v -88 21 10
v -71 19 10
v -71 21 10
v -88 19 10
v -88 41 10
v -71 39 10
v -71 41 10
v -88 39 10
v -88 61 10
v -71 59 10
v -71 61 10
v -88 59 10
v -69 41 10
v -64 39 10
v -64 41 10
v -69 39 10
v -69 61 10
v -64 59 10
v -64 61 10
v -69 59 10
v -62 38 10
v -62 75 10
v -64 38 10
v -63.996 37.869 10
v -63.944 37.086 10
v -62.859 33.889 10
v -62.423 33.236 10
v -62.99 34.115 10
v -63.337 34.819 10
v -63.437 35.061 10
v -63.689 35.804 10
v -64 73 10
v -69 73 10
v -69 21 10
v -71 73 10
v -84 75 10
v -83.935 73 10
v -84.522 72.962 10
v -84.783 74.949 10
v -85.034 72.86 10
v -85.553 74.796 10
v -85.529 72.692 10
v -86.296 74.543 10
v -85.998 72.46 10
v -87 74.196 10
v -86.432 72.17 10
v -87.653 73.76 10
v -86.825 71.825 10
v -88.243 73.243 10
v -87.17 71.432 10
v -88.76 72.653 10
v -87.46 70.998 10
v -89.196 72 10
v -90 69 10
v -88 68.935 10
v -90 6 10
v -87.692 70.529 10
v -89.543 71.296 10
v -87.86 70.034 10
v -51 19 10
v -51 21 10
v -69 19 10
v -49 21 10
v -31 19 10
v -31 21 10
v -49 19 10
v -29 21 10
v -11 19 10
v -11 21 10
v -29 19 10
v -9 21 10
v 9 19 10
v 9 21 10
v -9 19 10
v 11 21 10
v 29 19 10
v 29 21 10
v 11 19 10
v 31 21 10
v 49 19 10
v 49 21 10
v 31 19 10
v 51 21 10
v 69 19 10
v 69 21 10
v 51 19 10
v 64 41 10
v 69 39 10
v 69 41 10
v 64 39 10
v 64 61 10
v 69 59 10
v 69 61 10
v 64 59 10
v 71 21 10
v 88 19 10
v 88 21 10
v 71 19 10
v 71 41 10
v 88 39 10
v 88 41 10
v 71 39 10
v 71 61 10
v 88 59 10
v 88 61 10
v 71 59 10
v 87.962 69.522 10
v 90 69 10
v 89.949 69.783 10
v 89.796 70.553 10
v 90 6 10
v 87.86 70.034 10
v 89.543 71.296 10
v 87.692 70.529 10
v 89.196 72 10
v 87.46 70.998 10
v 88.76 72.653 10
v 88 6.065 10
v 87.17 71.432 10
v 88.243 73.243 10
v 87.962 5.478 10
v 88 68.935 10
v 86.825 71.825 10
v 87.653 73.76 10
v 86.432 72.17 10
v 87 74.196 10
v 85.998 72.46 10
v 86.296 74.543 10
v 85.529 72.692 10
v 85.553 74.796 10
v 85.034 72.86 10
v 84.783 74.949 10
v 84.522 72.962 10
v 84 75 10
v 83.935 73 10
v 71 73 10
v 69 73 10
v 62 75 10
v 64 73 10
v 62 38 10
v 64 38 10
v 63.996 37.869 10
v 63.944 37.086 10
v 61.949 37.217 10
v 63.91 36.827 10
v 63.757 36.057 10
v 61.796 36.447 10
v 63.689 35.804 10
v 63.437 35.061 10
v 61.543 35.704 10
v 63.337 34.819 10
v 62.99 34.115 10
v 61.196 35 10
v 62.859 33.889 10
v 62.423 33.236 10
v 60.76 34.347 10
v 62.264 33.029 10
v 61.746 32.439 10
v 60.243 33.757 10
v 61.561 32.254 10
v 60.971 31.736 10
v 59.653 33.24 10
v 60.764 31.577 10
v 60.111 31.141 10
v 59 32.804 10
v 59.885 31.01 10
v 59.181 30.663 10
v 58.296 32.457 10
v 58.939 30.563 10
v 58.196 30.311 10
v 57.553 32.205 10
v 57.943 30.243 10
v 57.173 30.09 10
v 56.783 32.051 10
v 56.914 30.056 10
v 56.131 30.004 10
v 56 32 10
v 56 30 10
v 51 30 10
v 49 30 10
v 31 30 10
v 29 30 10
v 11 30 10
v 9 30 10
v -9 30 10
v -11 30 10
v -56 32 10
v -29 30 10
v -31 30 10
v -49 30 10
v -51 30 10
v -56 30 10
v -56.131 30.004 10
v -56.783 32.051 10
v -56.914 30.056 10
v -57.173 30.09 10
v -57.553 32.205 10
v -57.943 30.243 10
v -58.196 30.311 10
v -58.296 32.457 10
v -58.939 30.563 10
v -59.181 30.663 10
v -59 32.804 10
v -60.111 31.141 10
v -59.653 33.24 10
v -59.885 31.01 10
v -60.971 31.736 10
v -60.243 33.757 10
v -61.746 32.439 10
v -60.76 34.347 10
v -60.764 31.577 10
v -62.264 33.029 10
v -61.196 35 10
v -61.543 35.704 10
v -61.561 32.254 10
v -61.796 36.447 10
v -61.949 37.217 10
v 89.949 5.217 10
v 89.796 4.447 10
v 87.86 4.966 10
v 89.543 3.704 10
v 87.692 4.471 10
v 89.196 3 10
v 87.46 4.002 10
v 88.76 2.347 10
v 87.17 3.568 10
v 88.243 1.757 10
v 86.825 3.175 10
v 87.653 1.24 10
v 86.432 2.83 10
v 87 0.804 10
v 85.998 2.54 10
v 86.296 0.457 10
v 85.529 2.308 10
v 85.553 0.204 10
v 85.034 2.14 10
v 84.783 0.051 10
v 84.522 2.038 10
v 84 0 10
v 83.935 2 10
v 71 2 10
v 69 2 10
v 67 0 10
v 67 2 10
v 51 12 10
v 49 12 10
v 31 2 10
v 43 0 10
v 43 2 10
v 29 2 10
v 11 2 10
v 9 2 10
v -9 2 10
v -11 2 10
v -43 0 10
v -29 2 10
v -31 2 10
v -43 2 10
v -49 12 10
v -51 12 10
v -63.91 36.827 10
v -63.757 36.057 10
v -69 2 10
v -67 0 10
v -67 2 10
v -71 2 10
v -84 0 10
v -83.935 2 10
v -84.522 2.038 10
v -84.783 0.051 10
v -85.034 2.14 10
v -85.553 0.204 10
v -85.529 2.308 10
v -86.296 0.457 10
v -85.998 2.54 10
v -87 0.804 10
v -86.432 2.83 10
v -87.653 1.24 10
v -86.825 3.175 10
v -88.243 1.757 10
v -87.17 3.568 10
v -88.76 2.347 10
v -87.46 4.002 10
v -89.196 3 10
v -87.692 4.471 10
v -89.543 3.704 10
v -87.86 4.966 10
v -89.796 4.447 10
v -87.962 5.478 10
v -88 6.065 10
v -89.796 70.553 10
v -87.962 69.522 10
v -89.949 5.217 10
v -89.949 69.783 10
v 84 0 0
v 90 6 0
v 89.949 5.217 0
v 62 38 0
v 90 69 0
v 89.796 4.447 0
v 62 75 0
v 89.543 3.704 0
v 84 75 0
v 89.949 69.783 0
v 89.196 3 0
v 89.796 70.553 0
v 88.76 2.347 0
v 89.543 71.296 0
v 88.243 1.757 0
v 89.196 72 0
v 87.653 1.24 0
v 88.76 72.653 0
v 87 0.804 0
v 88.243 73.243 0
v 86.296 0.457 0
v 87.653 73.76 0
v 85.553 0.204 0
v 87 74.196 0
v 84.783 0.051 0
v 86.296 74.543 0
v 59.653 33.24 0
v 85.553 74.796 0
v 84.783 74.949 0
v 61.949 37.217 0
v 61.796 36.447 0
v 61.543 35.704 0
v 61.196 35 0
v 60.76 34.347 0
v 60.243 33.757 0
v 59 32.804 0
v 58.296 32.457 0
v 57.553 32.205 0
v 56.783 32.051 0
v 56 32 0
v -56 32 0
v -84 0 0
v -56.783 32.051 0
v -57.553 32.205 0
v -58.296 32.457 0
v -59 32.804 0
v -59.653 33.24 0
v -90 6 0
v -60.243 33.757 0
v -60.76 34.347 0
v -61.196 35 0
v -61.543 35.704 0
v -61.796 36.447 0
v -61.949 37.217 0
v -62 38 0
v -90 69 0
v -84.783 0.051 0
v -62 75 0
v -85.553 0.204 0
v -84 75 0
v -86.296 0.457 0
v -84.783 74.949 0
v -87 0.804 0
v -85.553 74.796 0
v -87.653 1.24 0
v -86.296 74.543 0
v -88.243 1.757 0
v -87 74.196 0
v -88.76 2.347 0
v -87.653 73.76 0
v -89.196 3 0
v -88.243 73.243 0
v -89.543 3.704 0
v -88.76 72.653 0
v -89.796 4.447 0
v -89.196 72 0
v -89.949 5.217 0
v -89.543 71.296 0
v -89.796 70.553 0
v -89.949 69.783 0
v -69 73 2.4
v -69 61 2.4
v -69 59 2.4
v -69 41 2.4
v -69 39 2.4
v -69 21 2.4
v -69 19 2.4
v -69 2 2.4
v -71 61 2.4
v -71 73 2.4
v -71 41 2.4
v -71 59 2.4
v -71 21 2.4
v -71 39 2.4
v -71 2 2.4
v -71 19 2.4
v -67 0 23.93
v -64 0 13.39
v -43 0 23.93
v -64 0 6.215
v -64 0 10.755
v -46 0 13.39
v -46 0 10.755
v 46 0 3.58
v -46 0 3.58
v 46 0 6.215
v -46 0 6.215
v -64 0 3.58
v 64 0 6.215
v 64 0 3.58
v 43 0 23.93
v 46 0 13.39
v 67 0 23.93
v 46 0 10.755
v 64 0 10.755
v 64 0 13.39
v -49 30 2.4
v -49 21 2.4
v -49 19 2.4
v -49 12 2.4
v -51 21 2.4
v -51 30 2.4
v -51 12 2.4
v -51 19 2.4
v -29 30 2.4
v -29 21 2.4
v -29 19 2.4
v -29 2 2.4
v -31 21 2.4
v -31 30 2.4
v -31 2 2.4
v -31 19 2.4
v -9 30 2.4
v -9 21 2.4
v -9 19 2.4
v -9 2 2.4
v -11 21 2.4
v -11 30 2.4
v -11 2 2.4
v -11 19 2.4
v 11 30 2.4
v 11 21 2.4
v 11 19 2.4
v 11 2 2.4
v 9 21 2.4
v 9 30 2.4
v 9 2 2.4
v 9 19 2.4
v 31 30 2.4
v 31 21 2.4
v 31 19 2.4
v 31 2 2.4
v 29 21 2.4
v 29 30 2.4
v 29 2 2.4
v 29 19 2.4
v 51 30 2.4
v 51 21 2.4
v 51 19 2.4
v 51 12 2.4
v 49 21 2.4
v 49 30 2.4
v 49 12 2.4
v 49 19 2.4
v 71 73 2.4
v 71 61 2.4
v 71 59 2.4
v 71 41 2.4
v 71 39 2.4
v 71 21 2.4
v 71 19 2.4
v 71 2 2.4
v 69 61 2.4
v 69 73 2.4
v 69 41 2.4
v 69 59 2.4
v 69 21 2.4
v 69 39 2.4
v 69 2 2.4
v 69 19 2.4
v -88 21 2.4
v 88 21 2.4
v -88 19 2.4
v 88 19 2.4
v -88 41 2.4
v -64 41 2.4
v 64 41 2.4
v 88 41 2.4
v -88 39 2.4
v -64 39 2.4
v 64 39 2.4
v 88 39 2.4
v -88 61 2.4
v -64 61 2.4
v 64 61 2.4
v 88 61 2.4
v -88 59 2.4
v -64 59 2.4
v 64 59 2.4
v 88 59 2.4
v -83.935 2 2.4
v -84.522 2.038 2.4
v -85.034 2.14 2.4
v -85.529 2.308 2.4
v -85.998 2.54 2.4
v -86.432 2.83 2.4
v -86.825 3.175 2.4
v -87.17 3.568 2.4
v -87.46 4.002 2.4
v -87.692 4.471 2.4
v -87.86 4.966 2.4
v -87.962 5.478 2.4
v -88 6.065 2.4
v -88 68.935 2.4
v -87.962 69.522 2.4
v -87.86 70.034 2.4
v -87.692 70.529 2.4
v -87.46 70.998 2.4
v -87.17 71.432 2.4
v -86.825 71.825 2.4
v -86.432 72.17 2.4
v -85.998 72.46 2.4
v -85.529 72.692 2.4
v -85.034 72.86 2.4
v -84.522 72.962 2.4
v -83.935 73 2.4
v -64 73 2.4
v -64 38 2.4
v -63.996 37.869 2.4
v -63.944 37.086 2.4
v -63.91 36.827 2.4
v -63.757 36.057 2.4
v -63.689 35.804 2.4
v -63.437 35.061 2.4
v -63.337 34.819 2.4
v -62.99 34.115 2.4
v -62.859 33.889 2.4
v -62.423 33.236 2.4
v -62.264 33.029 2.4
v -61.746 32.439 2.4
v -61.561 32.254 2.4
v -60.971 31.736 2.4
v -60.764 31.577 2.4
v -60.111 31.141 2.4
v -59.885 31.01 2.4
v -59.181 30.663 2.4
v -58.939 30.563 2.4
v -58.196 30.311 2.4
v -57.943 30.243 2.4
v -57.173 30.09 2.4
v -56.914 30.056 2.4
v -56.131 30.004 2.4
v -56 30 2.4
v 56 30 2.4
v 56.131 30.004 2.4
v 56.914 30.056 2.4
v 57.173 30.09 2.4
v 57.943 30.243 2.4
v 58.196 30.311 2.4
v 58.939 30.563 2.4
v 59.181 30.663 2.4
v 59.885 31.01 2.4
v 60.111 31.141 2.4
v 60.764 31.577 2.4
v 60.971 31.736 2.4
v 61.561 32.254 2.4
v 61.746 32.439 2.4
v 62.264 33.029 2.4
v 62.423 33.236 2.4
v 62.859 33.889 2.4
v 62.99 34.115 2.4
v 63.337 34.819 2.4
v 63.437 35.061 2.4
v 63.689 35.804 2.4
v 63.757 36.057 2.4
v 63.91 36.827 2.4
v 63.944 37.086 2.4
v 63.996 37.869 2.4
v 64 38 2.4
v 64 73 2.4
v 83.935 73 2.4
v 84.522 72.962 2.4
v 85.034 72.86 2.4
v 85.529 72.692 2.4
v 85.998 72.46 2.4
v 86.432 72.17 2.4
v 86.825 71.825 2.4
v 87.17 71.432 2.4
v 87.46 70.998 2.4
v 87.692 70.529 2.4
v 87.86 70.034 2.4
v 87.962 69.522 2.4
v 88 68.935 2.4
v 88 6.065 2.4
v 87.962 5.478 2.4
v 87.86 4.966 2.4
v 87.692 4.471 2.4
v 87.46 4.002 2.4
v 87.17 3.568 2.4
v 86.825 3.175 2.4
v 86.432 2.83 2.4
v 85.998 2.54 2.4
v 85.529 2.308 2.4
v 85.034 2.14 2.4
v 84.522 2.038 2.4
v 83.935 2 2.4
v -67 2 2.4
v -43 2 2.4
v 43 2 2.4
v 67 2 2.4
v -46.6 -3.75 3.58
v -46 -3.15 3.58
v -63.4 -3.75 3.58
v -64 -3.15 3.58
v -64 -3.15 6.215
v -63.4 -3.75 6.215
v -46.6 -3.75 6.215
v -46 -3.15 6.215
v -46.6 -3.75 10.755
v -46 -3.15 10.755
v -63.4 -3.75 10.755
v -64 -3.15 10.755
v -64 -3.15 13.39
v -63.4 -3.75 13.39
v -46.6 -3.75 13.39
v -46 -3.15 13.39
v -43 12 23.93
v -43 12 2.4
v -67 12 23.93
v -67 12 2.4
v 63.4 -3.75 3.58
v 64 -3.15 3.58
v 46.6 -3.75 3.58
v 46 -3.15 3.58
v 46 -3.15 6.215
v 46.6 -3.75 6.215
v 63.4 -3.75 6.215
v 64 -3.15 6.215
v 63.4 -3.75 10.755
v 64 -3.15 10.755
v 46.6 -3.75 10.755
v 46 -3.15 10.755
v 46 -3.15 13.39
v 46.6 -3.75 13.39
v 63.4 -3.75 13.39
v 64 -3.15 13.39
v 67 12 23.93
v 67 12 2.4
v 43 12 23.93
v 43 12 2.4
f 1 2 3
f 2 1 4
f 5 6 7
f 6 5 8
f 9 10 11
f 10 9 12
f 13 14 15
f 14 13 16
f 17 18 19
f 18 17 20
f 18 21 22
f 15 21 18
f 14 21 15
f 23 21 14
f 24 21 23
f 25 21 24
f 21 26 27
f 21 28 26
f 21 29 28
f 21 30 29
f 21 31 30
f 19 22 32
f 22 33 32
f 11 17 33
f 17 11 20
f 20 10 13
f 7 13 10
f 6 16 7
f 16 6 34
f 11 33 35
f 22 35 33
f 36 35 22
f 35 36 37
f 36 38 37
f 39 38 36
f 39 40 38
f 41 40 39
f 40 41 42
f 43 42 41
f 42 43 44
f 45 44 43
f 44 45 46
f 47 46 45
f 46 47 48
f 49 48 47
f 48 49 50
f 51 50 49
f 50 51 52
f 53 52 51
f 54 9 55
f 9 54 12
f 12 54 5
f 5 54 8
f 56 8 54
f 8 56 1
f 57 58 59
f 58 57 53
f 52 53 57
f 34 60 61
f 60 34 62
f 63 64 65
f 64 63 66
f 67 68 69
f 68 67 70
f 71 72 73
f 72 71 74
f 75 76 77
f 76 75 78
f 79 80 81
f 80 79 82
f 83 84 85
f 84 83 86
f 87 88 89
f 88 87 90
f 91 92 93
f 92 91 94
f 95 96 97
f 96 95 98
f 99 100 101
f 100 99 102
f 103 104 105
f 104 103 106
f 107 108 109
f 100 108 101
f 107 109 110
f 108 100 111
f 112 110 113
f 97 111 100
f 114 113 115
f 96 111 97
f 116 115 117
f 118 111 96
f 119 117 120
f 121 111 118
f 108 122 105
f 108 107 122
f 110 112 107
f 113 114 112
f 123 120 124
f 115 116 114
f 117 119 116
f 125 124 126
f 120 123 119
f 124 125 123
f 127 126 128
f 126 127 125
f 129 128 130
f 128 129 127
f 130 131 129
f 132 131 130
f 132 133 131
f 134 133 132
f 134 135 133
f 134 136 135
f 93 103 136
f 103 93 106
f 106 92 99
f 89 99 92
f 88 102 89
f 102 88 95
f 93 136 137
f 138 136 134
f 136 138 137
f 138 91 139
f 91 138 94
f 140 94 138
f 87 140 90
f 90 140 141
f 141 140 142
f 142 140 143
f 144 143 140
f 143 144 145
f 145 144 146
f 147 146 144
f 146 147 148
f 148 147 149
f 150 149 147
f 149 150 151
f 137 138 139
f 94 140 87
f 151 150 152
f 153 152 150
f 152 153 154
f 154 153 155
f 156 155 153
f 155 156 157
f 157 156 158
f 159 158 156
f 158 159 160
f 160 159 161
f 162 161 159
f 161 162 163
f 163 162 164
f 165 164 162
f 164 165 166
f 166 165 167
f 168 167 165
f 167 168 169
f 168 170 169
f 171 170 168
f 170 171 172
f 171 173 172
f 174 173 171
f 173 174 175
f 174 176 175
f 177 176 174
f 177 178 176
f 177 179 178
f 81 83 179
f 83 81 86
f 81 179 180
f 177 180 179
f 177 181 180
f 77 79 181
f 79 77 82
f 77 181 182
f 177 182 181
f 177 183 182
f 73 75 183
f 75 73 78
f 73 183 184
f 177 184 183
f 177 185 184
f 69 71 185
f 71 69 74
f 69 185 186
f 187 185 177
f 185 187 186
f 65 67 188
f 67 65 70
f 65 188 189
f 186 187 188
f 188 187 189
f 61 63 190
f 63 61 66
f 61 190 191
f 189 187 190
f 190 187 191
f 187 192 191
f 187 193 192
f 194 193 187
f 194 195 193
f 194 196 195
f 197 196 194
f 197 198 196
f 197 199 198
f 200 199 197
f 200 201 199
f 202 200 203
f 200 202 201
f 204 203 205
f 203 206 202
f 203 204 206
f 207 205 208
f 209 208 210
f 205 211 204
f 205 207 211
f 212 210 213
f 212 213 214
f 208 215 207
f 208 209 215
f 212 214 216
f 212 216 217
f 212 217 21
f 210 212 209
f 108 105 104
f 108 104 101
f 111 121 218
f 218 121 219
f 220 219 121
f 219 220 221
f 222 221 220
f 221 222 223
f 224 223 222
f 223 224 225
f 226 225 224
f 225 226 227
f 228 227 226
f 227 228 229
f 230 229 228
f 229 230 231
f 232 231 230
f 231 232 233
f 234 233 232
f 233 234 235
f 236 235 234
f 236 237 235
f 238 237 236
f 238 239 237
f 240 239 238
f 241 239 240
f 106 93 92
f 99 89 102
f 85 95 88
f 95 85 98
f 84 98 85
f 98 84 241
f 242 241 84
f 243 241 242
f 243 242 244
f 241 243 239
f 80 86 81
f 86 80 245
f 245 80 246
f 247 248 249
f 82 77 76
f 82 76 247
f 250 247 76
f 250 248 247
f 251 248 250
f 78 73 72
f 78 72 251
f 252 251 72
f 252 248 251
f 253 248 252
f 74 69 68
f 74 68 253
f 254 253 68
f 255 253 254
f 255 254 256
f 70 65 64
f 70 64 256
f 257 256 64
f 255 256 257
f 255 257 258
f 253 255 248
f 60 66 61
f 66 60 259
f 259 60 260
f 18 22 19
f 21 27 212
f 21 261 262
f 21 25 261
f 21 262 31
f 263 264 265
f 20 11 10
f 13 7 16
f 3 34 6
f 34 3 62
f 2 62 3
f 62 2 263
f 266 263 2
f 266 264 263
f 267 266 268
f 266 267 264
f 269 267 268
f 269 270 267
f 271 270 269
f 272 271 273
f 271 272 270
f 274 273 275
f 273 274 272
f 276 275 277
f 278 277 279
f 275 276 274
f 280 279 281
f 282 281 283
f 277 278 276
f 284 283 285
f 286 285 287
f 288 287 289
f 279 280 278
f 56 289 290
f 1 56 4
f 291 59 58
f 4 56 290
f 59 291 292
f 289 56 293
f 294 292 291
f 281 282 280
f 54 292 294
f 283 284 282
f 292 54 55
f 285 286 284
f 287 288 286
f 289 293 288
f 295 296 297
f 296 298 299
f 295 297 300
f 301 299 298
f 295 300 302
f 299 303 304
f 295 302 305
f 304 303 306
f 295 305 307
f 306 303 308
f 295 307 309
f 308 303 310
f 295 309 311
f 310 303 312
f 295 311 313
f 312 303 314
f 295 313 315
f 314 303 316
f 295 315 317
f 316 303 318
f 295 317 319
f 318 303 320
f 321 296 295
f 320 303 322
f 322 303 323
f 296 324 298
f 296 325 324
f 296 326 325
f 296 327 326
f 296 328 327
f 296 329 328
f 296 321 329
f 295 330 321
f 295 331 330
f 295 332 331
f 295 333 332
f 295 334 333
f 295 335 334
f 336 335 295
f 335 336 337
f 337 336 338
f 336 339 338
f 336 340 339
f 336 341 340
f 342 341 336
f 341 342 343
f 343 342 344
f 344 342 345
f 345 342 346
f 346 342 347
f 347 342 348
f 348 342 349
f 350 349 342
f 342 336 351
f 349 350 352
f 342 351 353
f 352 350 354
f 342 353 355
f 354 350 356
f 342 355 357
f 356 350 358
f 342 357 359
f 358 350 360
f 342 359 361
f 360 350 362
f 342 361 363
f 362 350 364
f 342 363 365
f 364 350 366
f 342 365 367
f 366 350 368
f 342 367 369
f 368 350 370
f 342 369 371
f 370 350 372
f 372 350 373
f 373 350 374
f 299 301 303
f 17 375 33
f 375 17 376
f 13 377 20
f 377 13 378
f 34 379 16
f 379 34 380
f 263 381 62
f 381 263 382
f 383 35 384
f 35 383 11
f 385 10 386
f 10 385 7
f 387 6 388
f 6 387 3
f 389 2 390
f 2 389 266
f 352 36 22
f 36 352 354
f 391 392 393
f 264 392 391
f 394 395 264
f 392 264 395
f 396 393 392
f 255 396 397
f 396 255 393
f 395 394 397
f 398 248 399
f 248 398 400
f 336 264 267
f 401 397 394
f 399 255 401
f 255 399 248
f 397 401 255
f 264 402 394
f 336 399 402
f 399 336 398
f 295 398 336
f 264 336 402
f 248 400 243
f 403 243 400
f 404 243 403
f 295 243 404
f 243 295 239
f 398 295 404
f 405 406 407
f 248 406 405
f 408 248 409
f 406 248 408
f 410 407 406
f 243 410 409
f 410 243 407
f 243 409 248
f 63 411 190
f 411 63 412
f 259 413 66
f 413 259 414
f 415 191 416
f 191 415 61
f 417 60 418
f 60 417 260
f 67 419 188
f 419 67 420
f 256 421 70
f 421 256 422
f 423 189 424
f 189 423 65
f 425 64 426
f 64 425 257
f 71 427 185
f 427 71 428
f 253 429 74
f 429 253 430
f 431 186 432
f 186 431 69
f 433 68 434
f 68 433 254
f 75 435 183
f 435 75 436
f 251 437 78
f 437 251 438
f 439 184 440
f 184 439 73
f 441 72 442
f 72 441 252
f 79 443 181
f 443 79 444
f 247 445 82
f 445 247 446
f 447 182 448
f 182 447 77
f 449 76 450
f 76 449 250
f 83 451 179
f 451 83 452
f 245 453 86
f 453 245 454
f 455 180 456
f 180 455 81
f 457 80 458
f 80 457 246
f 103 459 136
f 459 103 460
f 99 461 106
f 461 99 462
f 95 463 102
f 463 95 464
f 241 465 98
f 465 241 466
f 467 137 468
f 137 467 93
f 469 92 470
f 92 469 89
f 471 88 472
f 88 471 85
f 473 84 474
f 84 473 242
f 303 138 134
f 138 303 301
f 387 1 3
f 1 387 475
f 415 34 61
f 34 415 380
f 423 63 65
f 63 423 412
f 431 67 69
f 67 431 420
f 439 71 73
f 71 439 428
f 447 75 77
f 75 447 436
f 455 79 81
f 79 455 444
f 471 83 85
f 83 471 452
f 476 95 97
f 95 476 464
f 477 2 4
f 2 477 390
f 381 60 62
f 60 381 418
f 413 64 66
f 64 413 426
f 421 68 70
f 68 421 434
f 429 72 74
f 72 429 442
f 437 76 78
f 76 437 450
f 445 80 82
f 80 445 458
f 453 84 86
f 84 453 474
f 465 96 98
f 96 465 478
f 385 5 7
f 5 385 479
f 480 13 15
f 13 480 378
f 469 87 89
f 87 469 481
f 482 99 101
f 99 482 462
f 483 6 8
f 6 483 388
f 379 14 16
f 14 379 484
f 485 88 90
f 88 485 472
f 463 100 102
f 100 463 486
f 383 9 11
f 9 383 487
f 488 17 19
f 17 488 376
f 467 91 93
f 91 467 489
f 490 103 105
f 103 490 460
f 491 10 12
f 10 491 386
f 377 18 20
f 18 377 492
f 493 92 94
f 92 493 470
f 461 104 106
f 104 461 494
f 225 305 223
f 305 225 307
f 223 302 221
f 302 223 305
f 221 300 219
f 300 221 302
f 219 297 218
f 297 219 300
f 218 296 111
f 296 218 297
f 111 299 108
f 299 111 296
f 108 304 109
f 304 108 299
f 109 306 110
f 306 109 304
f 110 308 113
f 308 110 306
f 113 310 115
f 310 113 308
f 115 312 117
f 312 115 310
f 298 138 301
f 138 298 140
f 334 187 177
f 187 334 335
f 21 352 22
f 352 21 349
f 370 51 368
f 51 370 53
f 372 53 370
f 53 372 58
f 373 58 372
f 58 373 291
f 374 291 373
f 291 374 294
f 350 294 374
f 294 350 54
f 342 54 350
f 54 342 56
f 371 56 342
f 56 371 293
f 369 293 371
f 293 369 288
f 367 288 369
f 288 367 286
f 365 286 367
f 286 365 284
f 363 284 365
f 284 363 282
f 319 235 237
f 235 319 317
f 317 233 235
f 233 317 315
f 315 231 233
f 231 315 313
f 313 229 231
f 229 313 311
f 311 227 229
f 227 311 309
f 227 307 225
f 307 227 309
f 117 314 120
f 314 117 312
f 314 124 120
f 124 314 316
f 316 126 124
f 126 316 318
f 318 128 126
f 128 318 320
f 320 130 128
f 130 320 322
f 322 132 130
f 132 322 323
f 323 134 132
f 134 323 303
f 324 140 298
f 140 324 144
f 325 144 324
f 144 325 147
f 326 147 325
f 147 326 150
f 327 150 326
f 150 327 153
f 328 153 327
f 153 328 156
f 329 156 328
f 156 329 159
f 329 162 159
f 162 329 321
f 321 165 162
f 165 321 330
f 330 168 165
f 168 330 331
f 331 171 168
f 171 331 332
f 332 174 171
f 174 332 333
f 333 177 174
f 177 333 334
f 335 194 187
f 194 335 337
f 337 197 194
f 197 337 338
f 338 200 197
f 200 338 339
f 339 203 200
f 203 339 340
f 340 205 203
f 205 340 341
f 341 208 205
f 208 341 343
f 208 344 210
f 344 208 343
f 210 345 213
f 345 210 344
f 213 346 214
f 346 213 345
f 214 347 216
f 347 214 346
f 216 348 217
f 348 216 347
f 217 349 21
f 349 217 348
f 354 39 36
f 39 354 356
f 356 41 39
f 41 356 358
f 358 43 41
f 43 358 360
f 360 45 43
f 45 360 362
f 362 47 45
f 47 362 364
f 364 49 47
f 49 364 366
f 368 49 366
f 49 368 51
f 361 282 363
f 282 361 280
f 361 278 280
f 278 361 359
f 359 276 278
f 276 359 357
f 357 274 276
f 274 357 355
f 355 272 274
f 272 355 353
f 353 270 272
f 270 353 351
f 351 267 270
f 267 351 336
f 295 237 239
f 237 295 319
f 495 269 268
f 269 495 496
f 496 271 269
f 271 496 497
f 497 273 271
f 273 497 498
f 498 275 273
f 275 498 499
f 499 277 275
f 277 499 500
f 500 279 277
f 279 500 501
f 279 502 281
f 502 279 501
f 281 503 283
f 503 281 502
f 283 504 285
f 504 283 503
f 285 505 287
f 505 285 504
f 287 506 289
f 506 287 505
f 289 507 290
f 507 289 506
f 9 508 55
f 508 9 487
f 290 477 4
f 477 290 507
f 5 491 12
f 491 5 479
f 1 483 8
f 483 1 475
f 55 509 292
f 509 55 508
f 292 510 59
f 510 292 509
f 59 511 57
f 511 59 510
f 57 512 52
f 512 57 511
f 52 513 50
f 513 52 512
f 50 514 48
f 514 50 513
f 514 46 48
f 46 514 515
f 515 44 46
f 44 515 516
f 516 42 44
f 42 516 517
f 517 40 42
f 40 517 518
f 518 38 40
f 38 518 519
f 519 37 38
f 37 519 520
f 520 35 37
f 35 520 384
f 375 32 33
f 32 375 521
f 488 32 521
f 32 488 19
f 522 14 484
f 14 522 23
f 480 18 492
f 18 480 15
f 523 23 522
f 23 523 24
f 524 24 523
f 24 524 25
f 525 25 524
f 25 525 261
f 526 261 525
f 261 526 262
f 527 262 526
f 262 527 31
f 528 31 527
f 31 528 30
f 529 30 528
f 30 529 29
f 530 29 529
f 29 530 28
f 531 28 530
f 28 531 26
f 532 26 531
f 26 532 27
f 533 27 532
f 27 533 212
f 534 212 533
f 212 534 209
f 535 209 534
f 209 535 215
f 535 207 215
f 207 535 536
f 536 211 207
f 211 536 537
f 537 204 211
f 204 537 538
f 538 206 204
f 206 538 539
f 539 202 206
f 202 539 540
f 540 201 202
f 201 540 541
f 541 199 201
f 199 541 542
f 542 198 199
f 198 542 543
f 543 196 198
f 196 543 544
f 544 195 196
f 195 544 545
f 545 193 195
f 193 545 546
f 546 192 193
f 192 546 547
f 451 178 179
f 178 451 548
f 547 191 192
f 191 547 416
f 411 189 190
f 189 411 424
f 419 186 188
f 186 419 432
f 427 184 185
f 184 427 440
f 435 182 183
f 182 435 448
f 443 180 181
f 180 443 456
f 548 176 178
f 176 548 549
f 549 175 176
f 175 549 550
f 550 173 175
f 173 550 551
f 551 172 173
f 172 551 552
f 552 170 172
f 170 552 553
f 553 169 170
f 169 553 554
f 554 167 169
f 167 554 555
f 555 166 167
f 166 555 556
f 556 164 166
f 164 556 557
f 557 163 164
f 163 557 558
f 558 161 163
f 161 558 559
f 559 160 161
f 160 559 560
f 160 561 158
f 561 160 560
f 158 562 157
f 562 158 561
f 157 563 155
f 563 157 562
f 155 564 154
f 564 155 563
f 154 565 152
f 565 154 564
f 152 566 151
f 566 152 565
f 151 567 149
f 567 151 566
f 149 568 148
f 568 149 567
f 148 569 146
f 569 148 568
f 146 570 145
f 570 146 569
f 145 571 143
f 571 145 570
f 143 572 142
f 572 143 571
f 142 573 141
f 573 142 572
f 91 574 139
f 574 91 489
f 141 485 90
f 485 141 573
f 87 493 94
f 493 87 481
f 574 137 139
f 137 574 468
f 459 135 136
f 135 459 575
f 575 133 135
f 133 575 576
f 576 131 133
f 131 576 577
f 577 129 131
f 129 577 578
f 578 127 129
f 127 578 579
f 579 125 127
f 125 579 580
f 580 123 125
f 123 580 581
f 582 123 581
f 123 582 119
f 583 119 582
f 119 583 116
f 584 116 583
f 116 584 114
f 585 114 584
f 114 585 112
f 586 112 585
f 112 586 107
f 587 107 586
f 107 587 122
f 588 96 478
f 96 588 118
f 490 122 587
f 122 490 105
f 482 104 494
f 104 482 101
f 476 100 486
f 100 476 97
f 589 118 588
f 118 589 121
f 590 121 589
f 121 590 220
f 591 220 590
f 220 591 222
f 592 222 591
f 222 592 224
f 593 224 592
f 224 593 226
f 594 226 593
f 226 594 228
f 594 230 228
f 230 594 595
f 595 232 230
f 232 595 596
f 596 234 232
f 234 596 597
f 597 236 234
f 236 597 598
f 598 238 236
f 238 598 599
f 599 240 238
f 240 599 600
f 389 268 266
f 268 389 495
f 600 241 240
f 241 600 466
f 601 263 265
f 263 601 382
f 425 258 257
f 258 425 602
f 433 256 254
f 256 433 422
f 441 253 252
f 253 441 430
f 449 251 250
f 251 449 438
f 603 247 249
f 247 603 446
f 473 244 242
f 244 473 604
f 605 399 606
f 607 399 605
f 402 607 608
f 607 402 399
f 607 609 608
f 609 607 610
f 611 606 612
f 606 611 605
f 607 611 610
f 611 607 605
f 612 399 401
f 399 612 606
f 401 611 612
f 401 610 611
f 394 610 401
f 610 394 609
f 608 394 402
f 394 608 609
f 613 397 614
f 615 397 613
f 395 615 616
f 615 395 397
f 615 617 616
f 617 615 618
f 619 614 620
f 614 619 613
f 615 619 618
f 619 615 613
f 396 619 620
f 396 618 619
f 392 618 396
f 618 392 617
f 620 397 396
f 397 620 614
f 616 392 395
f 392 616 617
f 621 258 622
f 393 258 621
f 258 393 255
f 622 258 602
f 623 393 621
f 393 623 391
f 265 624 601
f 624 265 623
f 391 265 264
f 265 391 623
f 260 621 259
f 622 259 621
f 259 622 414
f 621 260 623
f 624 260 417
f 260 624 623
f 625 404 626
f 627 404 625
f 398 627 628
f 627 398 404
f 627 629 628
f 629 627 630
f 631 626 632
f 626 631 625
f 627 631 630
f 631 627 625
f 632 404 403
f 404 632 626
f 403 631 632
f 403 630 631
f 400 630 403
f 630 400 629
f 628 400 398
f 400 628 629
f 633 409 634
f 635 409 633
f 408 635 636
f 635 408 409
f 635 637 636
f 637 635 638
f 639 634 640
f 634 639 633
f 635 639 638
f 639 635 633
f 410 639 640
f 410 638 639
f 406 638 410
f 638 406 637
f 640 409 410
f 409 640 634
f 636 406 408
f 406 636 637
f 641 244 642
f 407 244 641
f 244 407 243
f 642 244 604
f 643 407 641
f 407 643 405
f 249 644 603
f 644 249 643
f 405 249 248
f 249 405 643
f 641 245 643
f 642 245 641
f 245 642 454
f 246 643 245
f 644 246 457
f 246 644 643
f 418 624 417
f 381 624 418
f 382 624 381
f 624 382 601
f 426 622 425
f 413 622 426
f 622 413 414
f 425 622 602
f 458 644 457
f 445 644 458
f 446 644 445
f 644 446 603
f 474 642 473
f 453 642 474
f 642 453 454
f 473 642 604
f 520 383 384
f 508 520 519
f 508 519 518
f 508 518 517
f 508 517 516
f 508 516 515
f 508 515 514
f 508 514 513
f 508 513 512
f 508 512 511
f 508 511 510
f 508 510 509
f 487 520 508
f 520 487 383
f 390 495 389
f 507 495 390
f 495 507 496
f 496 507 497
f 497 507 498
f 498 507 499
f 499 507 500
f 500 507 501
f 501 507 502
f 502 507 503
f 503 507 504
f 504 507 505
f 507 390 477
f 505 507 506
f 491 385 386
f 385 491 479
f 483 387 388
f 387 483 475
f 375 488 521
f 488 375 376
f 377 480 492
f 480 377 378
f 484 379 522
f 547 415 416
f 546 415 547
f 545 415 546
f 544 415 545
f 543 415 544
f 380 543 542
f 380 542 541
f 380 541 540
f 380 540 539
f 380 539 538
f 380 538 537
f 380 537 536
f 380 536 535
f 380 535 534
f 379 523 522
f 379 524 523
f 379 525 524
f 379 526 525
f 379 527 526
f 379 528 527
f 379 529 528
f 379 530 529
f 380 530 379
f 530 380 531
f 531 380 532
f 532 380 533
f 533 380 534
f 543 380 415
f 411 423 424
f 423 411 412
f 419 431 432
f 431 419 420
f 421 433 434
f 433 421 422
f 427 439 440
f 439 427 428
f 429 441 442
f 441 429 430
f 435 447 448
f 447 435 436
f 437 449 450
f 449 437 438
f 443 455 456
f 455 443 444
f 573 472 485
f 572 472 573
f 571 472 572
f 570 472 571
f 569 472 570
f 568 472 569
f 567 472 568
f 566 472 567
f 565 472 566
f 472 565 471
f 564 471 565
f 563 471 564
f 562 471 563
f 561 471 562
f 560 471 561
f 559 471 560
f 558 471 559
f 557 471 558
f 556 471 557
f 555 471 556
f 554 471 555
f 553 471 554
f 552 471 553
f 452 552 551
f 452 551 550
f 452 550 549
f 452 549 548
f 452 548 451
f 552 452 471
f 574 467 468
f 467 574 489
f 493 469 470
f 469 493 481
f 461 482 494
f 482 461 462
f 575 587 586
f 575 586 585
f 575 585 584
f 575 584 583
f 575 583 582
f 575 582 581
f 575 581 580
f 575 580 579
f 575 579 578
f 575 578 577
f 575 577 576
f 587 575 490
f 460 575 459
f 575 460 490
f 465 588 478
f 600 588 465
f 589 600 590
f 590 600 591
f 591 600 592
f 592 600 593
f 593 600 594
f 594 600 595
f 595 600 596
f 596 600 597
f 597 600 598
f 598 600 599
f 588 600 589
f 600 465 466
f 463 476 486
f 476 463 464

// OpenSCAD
// Yealink T29G replacement desk stand -- parametric, prints flat, no supports.
//
// Render one part at a time:
//   openscad -D 'part="stand"'    -o t29_stand.stl    t29_stand.scad
//   openscad -D 'part="fit_test"' -o t29_fit_test.stl t29_stand.scad
//
// PRINT THE FIT TEST FIRST. It is a thin strip carrying both tabs at the
// real spacing, so one ~15 minute print confirms tab size, tab spacing and
// slot engagement before committing filament to a batch of full stands.

part = "stand";            // "stand" | "fit_test"

/* [Tabs -- from caliper measurements of the OEM stand] */
// Each tab is a pair of parallel rails standing out from the stand's edge
// face, running along the edge. Across the edge face (bed face upward):
//   3.43 face->rail1 | 2.89 rail1 | 4.24 gap | 2.89 rail2 | 10.39 -> far face
// Checks: 6.32 = face->rail1 inner, 10.11 = rail span, 20.50 = rail1 outer->far face,
//         23.93 = full edge thickness.
tab_w        = 18.0;   // rail length along the stand edge (measured 18.00)
rail_z0      = 3.43;   // bed face to the outer side of the first rail (23.93 - 20.50)
rail_span    = 10.11;  // across both rails, outside to outside (measured)
rail_gap     = 4.24;   // gap between the rails (measured)
rail_h       = 3.90;   // how far the rails stand out from the edge face (measured -- CONFIRM)
edge_h       = 23.93;  // stand thickness at the tab (measured)
tab_pitch    = 110.0;  // tab centre-to-centre distance (DERIVED from 149 / 5.81 / 25.67 / 32.93 - verify)
tab_offset   = 0.0;    // shift both tabs left(-)/right(+) if the slots are off-centre
tab_clear    = 0.15;   // removed from each tab face so printed tabs slide in
tab_chamfer  = 0.6;    // lead-in chamfer on the rail tips

/* [Stand body] */
stand_w      = 180.0;  // overall width, foot to foot
stand_len    = 75.0;   // tab edge to foot edge -- sets the viewing angle (longer = more upright)
band_d       = 32.0;   // depth of the solid band along the tab edge
leg_w        = 28.0;   // width of each leg
corner_r     = 6.0;    // outline corner radius
skin         = 2.4;    // flat plate thickness
rib_h        = 10.0;   // total height incl. stiffening ribs (bosses at the tabs go to edge_h)
rib_t        = 2.0;    // rib / perimeter wall thickness
rib_pitch    = 20.0;   // grid rib spacing

/* [Fit test] */
fit_strip_d  = 14.0;   // depth of the test strip
fit_strip_t  = 2.4;    // thickness of the test strip between the tabs

$fn = 48;

// ---------------------------------------------------------------------------
// Geometry: X = along the tab edge, Y = away from the tabs (towards the feet),
// Z = up off the print bed. Tabs protrude in -Y from the edge at y = 0.

module rounded_square(size, r) {
    offset(r) offset(-r) square(size);
}

module outline() {
    // Rectangle with the centre cut away below the band, leaving two legs.
    difference() {
        translate([-stand_w/2, 0]) rounded_square([stand_w, stand_len], corner_r);
        translate([-stand_w/2 + leg_w, band_d])
            offset(corner_r) offset(-corner_r)
                square([stand_w - 2*leg_w, stand_len]);
    }
}

module rail() {
    // One rail: length tab_w along X, width rw in Z, standing rail_h out in -Y.
    rw = (rail_span - rail_gap)/2 - 2*tab_clear;
    h  = rail_h - tab_clear;
    c  = tab_chamfer;
    hull() {
        translate([-tab_w/2 + c, -h, 0]) cube([tab_w - 2*c, h + 1, rw]);
        translate([-tab_w/2, -h + c, 0]) cube([tab_w, h - c + 1, rw]);
    }
}

module tab_trimmed() {
    pitch = (rail_span + rail_gap)/2;
    for (z = [rail_z0 + tab_clear, rail_z0 + tab_clear + pitch])
        translate([0, 0, z]) rail();
    // Boss behind the rails, full stand thickness at the tab.
    translate([-tab_w/2 - 3, 0, 0]) cube([tab_w + 6, 12, edge_h]);
}

module tabs() {
    for (s = [-1, 1])
        translate([tab_offset + s*tab_pitch/2, 0, 0]) tab_trimmed();
}

module ribs() {
    // Perimeter wall
    linear_extrude(rib_h)
        difference() { outline(); offset(-rib_t) outline(); }
    // Grid, clipped to the outline
    intersection() {
        linear_extrude(rib_h) outline();
        union() {
            for (x = [-stand_w/2 : rib_pitch : stand_w/2])
                translate([x - rib_t/2, 0, 0]) cube([rib_t, stand_len, rib_h]);
            for (y = [rib_pitch : rib_pitch : stand_len])
                translate([-stand_w/2, y - rib_t/2, 0]) cube([stand_w, rib_t, rib_h]);
        }
    }
}

module stand() {
    linear_extrude(skin) outline();
    ribs();
    tabs();
}

module fit_test() {
    span = tab_pitch + tab_w + 12;
    translate([tab_offset - span/2, 0, 0]) cube([span, fit_strip_d, fit_strip_t]);
    tabs();
}

if (part == "fit_test") fit_test();
else stand();
